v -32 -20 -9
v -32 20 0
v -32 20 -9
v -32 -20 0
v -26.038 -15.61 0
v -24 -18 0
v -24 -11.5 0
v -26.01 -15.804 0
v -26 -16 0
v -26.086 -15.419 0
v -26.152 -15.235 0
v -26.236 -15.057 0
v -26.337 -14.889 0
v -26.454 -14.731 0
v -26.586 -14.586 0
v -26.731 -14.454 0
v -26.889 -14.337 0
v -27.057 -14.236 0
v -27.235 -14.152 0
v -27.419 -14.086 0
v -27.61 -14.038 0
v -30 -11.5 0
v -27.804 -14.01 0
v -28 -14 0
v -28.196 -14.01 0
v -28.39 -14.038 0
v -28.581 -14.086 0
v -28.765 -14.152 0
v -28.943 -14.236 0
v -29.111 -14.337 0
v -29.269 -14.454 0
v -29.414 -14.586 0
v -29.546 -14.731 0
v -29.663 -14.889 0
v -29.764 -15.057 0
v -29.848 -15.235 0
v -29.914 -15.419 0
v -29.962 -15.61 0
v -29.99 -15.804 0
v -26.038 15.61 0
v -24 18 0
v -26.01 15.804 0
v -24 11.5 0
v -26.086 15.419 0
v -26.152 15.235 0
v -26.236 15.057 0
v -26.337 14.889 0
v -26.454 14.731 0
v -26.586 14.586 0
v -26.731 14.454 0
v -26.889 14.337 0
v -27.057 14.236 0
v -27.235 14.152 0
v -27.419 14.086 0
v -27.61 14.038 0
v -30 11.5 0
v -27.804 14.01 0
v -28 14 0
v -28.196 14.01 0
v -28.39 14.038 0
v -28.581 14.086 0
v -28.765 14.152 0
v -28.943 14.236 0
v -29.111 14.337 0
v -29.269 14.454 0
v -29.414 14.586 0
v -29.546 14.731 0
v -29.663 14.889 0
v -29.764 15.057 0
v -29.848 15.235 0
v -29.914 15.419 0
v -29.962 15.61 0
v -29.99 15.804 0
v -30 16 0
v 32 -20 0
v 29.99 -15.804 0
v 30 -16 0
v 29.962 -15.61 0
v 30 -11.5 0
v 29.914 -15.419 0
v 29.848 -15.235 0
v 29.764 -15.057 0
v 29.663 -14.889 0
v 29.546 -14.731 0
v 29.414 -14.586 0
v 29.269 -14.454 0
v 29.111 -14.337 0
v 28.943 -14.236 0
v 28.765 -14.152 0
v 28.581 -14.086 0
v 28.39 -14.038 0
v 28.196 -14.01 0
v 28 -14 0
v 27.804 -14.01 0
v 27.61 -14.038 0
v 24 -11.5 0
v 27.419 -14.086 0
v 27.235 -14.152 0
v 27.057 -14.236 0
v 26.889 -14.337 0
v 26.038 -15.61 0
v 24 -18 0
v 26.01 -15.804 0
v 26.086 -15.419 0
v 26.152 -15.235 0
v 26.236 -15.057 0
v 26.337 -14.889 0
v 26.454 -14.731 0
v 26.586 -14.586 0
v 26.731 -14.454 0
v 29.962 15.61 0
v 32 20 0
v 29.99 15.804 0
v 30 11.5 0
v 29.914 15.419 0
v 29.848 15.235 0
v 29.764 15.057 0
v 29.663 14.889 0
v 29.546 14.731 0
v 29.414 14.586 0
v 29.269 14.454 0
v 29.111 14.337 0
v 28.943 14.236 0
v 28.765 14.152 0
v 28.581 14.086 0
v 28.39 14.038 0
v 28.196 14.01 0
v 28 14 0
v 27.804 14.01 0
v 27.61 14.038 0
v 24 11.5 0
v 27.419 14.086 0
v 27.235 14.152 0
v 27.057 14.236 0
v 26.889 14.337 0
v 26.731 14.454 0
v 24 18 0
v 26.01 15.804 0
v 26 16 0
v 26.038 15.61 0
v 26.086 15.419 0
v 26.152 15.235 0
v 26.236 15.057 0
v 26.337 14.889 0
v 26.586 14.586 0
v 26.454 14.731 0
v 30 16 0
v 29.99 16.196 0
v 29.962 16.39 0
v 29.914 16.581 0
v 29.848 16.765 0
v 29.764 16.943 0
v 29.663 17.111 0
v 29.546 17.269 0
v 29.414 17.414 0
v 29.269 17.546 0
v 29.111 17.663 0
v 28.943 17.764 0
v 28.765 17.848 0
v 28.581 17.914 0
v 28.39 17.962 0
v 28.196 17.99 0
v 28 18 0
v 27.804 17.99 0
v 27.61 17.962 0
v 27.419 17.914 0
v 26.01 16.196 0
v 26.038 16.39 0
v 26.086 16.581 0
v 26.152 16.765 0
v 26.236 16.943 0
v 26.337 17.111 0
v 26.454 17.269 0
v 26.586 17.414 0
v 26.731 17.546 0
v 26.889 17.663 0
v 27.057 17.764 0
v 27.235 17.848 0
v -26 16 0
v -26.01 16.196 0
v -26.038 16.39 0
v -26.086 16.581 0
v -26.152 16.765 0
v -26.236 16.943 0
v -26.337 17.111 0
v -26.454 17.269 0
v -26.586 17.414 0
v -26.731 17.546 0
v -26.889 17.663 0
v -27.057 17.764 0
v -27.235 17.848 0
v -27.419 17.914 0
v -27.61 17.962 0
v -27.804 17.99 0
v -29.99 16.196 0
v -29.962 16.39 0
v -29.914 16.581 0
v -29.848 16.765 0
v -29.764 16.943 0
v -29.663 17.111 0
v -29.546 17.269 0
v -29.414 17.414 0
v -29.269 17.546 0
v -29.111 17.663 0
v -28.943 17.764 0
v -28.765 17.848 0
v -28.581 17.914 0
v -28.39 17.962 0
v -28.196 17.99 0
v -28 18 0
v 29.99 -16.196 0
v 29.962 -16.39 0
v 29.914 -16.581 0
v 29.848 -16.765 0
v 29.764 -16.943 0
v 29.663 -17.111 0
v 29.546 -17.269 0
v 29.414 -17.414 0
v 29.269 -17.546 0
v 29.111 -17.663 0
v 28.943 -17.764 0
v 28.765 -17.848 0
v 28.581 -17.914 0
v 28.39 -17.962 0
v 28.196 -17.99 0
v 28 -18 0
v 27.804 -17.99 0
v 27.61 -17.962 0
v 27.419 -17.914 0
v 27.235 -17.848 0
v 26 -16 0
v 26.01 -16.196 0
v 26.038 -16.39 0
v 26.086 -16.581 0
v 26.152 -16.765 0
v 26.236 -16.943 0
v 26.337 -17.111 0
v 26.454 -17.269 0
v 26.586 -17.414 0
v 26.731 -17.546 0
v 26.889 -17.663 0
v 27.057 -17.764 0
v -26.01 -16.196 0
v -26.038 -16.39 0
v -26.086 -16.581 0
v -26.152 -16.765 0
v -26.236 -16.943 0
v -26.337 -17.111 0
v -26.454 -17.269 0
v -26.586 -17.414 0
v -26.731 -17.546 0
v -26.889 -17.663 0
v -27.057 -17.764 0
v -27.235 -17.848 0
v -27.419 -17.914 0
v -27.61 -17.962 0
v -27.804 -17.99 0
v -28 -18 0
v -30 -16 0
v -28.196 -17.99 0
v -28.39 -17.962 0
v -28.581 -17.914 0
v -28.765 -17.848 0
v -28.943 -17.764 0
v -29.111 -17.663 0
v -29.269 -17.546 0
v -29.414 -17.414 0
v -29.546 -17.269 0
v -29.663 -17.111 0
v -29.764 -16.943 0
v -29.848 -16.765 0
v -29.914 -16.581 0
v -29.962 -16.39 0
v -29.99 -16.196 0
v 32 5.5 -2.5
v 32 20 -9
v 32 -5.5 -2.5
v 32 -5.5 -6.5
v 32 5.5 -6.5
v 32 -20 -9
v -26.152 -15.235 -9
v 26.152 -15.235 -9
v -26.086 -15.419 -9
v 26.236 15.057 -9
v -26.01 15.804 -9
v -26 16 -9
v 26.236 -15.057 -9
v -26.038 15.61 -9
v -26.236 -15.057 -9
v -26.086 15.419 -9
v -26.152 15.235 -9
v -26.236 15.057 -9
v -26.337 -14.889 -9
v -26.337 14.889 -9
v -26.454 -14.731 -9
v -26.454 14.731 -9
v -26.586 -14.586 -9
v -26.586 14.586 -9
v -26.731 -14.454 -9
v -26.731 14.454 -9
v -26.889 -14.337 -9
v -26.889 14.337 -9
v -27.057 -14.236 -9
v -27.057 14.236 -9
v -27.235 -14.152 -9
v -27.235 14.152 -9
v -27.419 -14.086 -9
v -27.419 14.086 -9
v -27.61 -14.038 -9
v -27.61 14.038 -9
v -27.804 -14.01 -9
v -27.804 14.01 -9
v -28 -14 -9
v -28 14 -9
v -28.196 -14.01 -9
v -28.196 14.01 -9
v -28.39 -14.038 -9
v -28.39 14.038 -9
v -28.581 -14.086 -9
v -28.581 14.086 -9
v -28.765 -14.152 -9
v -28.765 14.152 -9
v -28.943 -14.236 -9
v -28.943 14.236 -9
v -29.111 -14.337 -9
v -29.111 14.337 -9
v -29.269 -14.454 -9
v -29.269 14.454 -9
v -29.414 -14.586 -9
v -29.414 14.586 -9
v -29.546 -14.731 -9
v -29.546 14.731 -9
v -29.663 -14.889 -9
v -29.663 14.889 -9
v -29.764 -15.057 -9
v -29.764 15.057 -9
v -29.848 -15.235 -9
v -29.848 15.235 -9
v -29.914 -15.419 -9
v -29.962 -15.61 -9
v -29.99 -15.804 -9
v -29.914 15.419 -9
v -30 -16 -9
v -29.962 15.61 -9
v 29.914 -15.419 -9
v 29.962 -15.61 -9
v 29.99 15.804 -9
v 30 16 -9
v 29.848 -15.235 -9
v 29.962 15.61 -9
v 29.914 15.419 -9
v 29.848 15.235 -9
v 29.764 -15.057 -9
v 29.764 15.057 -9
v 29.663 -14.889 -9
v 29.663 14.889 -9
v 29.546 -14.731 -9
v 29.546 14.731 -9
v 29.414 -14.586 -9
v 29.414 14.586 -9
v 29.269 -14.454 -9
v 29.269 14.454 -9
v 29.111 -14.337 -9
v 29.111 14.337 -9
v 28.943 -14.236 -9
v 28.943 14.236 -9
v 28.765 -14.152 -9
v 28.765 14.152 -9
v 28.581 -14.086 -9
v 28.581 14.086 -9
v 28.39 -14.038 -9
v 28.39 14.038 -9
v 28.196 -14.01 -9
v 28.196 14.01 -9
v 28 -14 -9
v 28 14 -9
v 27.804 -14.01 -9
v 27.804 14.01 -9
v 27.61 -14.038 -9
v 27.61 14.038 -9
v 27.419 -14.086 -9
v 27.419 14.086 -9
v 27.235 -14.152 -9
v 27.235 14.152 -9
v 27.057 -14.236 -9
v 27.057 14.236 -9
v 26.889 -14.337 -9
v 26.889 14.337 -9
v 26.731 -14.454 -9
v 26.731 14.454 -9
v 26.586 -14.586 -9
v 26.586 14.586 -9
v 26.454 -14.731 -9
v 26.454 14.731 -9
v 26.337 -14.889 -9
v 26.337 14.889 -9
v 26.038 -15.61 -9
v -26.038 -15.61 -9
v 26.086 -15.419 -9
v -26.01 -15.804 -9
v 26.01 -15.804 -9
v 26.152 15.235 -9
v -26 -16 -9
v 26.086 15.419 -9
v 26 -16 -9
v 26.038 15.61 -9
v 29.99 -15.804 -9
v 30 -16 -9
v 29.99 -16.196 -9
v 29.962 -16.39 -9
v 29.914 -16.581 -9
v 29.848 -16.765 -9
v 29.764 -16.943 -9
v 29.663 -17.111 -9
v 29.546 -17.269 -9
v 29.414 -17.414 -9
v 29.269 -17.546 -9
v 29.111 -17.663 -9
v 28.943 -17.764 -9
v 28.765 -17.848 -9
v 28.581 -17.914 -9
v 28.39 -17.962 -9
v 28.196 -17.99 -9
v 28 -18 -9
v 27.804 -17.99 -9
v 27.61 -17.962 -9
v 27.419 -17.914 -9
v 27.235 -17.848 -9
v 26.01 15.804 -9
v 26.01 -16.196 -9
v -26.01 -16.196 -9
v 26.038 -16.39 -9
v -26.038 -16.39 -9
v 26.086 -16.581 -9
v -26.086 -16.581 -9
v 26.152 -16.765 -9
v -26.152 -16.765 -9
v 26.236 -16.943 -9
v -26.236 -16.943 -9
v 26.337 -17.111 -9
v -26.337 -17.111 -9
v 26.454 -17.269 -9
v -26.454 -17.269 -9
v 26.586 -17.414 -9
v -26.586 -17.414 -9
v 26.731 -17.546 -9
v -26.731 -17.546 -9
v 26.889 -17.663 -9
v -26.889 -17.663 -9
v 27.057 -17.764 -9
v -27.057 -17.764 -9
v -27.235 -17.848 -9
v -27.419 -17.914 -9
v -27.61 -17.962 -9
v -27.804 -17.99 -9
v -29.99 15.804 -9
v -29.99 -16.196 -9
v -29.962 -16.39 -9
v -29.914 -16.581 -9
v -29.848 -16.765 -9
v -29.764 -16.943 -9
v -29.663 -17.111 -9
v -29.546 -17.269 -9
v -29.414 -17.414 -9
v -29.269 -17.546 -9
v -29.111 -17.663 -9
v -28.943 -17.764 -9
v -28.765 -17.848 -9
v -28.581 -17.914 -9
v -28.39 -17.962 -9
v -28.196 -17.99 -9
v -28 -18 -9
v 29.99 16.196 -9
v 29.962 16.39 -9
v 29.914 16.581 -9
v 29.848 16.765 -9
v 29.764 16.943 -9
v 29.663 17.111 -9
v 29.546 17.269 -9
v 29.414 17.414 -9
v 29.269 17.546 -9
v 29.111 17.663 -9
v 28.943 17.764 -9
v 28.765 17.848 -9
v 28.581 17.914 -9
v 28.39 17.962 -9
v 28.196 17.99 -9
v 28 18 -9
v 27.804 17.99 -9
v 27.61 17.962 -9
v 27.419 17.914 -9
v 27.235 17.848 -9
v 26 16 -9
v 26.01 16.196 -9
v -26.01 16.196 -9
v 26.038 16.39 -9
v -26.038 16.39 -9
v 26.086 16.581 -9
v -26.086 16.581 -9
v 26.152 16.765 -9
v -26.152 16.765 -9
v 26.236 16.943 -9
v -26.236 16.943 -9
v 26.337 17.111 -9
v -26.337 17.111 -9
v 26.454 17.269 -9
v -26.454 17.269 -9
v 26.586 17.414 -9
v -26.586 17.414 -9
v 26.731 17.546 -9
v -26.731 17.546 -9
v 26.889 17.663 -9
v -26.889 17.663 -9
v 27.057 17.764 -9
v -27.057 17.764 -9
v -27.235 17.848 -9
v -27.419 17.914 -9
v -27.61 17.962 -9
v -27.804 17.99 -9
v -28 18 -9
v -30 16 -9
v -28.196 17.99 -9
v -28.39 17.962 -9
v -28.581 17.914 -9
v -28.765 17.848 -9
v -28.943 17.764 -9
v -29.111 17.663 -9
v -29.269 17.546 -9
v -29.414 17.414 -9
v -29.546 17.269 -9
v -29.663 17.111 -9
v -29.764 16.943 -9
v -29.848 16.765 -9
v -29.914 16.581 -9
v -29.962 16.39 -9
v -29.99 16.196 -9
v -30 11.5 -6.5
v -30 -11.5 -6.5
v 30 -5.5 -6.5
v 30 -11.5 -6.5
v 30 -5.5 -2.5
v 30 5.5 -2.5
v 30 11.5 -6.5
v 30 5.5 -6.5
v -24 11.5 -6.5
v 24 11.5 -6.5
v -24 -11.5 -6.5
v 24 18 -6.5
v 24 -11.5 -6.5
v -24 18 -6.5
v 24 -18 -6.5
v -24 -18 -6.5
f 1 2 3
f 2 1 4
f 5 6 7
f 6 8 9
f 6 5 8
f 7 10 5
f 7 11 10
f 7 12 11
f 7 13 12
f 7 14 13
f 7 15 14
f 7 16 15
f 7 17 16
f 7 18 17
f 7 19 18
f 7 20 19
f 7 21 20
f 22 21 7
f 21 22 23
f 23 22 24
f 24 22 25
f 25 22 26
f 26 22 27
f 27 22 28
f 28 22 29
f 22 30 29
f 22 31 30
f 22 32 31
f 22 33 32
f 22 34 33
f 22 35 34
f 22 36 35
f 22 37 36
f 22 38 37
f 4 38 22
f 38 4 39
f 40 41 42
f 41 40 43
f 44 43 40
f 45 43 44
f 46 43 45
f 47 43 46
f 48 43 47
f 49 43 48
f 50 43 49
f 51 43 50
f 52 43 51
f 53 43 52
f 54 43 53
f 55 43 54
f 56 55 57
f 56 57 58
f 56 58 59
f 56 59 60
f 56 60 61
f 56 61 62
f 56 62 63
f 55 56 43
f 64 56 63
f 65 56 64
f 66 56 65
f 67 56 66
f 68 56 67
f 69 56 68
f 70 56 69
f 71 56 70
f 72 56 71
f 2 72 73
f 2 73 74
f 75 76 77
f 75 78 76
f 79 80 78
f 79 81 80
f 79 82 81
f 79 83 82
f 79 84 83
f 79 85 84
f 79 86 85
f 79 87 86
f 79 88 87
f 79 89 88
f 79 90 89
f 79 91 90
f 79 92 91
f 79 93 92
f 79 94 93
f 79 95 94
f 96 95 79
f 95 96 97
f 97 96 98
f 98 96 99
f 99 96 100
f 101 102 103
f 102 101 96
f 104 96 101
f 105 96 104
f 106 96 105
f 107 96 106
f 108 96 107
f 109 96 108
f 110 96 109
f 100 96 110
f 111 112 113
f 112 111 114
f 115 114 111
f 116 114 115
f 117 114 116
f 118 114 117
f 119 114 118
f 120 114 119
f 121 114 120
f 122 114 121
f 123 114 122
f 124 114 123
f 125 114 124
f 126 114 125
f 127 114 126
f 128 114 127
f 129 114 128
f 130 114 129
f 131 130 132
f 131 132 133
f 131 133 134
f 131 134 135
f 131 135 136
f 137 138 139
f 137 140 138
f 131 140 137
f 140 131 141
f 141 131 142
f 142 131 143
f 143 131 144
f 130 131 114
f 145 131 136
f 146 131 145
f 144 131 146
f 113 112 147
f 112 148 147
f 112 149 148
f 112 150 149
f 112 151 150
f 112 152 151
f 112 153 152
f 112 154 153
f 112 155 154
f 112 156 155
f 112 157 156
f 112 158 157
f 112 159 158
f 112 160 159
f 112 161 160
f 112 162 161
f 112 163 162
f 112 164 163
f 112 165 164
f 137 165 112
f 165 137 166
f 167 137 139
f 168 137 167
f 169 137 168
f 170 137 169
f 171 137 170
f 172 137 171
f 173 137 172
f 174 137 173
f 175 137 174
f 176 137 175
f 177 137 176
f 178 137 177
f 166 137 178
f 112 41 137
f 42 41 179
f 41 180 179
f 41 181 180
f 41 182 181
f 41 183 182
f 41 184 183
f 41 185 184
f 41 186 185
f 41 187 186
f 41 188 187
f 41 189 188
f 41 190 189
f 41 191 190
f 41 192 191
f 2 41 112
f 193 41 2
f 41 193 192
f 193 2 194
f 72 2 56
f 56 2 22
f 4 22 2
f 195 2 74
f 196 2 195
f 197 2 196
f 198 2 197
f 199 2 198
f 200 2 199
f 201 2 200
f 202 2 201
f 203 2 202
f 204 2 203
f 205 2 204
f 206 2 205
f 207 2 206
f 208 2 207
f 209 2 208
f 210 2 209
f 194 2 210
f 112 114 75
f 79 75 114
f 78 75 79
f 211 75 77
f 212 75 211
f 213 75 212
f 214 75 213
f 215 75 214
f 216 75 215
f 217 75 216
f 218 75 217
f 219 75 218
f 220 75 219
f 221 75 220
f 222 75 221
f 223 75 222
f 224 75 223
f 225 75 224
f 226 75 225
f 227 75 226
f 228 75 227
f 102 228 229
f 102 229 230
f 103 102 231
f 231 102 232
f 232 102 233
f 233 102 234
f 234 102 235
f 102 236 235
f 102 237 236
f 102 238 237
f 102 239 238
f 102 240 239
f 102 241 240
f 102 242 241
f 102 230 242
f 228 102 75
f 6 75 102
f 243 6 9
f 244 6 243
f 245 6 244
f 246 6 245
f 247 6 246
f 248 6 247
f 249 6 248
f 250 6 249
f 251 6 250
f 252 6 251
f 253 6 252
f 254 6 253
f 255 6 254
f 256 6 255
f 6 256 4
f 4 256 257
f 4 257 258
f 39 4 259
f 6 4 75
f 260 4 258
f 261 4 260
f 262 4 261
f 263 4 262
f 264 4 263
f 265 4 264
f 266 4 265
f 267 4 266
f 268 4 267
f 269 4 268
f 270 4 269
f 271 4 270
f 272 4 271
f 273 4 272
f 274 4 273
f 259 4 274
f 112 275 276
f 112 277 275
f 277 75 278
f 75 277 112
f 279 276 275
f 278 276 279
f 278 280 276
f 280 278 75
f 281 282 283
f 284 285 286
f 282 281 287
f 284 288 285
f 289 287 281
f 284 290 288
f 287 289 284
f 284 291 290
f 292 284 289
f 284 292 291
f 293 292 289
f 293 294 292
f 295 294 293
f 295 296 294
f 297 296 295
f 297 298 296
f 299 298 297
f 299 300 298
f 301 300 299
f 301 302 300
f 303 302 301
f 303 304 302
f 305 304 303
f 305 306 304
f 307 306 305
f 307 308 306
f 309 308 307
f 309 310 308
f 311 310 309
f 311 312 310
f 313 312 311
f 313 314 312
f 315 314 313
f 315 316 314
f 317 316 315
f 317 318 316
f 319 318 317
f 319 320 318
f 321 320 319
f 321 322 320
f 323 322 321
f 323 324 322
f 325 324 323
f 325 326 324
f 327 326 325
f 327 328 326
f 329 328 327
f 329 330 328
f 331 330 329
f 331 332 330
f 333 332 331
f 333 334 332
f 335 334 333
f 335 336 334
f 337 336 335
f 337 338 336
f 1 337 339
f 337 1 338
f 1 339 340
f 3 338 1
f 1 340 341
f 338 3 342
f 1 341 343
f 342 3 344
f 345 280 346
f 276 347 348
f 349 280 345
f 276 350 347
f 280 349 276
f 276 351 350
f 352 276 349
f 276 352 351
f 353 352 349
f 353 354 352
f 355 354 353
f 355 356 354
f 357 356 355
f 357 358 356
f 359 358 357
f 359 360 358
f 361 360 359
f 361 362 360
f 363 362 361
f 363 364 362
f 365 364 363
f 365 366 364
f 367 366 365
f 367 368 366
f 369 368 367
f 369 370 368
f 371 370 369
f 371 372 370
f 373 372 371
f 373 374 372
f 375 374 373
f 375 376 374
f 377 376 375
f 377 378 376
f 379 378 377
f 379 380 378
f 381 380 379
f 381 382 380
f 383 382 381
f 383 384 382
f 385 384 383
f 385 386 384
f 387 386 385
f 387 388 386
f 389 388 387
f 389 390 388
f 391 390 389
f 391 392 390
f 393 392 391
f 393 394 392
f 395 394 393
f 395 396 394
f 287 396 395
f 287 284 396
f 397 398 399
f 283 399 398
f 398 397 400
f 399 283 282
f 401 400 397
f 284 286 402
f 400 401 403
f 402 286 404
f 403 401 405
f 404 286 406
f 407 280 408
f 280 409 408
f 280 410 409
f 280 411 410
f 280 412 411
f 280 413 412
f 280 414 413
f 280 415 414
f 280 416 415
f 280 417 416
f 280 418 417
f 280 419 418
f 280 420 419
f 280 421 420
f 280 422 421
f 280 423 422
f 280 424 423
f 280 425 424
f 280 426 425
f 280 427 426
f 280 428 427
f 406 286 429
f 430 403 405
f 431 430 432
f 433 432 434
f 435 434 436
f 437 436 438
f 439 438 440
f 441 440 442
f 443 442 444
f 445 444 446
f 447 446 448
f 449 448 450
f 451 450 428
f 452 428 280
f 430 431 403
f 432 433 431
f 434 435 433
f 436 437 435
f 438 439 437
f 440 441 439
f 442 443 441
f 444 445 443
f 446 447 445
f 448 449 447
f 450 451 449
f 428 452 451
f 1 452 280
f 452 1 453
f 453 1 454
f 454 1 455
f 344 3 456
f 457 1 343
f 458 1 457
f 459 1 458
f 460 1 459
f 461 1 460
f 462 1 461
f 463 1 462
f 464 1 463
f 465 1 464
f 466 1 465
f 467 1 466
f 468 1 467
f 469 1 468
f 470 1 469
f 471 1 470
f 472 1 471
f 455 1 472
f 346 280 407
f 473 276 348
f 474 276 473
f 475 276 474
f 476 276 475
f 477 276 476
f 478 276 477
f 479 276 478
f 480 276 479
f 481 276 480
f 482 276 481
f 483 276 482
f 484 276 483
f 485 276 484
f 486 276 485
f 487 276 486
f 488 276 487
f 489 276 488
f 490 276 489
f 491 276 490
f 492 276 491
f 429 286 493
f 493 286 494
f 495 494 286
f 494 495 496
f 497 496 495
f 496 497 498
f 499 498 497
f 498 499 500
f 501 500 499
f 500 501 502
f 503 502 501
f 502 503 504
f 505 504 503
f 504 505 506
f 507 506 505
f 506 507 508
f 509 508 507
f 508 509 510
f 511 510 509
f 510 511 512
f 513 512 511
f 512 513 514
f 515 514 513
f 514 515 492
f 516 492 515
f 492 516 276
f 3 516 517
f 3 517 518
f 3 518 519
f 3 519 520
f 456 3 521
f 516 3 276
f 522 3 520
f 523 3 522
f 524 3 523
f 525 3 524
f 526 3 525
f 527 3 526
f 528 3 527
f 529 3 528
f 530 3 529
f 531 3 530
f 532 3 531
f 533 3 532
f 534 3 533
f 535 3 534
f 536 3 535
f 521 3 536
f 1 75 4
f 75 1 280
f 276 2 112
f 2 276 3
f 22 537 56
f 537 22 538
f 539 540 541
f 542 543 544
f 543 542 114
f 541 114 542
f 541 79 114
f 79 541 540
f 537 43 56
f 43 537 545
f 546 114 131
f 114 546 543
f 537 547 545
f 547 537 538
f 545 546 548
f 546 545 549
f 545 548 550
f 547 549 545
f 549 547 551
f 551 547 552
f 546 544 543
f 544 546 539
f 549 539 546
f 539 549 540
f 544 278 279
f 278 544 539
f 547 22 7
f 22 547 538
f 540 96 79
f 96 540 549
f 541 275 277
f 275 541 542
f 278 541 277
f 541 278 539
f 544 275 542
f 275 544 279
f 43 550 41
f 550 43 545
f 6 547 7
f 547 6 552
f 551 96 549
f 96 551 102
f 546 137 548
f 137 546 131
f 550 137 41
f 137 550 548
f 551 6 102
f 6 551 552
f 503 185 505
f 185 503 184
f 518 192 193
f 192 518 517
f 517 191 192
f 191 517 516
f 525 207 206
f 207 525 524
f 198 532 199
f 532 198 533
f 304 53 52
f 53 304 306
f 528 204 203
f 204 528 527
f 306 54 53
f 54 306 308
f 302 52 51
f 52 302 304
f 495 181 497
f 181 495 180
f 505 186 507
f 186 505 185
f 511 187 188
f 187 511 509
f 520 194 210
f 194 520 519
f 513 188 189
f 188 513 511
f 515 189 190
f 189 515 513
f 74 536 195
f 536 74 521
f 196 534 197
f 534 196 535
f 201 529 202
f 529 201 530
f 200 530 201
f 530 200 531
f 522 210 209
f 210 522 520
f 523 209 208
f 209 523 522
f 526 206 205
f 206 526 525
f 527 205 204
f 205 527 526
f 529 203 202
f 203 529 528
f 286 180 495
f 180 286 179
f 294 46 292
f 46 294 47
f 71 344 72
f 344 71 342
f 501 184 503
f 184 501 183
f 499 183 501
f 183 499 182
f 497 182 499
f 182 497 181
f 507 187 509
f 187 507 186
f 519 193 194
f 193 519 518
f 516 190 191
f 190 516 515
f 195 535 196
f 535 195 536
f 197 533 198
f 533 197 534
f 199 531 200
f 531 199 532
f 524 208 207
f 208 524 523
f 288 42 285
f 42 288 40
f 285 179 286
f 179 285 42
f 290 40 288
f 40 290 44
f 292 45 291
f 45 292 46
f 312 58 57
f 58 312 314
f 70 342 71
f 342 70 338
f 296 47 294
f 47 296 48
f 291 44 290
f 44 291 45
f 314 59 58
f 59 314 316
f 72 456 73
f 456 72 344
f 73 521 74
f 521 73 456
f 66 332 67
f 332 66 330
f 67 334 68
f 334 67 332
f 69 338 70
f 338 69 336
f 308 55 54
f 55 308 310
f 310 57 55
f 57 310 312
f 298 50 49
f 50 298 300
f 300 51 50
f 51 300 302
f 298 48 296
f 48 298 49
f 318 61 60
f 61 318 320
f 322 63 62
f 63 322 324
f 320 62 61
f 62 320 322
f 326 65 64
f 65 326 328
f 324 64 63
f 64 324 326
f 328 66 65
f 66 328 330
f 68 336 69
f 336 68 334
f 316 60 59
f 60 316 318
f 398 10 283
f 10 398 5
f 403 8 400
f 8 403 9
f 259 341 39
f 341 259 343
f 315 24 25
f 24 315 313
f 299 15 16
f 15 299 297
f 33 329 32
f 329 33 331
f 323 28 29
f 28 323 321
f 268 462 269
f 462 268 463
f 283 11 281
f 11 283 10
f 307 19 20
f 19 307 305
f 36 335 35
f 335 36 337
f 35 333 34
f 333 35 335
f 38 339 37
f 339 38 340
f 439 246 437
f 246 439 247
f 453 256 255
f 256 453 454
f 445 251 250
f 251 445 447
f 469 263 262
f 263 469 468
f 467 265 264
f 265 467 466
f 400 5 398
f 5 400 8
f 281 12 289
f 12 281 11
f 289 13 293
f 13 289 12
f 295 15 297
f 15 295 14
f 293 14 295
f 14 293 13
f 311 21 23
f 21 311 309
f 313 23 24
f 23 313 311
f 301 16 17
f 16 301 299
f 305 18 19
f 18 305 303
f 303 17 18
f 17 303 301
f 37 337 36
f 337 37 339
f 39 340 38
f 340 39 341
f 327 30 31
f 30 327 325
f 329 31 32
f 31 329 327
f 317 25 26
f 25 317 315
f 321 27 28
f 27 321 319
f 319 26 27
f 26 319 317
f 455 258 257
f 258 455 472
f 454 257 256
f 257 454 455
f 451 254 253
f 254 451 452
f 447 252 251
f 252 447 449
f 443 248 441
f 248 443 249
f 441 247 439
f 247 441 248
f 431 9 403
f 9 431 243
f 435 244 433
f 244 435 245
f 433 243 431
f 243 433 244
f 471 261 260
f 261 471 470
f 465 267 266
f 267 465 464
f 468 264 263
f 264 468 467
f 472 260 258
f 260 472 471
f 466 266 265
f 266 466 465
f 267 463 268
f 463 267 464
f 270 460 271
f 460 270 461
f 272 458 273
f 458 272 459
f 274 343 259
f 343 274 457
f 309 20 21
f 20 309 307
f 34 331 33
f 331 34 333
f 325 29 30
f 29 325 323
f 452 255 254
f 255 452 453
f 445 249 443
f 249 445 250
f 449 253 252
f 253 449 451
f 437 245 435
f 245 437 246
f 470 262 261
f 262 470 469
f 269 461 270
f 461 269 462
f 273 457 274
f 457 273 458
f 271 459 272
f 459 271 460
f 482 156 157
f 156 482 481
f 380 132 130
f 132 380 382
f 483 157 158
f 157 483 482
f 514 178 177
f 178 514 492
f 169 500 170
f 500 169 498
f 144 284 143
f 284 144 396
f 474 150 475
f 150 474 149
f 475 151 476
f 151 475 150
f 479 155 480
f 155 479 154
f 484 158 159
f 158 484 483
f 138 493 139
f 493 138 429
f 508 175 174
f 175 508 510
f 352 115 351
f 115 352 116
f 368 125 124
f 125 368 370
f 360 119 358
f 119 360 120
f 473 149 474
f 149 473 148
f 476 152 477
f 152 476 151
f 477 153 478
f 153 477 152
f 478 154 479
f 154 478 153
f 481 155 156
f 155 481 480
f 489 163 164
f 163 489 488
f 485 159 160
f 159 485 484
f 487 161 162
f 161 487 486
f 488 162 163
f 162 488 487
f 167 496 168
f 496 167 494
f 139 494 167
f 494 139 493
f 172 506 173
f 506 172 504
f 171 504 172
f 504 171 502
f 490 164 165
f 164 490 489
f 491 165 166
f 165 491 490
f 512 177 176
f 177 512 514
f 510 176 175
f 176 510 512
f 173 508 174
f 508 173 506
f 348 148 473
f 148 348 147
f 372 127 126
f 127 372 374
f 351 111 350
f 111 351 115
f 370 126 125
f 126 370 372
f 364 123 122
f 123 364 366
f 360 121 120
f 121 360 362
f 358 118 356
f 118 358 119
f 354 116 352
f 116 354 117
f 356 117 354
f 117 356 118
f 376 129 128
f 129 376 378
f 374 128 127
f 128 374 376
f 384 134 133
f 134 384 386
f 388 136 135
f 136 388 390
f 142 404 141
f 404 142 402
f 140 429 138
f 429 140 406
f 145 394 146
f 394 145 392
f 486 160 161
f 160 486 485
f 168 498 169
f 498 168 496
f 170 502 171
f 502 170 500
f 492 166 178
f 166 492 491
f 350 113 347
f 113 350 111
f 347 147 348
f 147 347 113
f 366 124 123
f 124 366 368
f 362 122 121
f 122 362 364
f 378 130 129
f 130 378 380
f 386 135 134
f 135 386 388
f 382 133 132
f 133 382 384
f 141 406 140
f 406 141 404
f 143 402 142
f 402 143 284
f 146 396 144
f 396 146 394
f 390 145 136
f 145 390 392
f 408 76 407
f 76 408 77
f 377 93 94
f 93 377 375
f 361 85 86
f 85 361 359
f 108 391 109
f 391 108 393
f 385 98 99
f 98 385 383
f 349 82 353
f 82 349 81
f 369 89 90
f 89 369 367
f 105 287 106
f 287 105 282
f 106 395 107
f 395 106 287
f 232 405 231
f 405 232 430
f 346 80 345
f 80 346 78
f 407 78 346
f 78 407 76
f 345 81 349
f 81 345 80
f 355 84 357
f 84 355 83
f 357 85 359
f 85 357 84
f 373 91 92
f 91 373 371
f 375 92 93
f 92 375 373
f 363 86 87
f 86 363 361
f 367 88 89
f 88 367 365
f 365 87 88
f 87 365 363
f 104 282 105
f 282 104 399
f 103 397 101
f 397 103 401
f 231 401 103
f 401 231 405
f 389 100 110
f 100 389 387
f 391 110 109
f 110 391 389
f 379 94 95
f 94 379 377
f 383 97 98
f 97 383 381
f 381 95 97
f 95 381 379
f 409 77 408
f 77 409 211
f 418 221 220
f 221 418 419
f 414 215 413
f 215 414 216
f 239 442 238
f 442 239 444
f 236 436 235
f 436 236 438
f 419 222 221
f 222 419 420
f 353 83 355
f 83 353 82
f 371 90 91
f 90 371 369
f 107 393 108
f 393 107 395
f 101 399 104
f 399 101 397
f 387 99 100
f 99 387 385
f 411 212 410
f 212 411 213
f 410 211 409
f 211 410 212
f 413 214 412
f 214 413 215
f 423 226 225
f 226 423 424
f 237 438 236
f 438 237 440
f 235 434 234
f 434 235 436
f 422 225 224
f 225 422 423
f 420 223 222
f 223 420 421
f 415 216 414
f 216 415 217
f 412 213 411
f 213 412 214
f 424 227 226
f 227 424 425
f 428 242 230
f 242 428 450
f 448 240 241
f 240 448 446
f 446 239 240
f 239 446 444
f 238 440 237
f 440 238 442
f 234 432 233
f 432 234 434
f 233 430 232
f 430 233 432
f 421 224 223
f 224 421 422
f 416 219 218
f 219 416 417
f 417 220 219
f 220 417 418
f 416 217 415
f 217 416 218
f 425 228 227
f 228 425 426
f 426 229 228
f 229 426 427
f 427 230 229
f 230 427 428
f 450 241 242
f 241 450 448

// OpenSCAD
$fn=64;
difference(){

    {
        xdim2 = 64;
        ydim2 = 40;
        zdim2 = 9;
        translate([-xdim2/2, -ydim2/2, -zdim2])
        {
            cube([xdim2,ydim2,zdim2]);
        }
    }
    xdim1 = 60;
    ydim1 = 23;
    zdim1 = 7;
    //-6.5 was 0 comment of -zdim])
    translate([-xdim1/2, -ydim1/2, -6.5])
    {
        cube([xdim1,ydim1,zdim1]);
    }
    translate([-xdim1/2+2, -(ydim1-12)/2, -6.5])
    {
        cube([xdim1+2,ydim1-12,4]);
    }
    translate([-(xdim1-12)/2, -(ydim1+13)/2, -6.5])
    {
        cube([xdim1-12,ydim1+13,zdim1]);
    }
    radius = 2;
    translate([-56/2,32/2,-10])
    {
        cylinder (18,radius,radius);
    }

    translate([-56/2,-32/2,-10])
    {
        cylinder (18,radius,radius);
    }

    translate([56/2,32/2,-10])
    {
        cylinder (18,radius,radius);
    }

    translate([56/2,-32/2,-10])
    {
        cylinder (18,radius,radius);
    }
    
}
